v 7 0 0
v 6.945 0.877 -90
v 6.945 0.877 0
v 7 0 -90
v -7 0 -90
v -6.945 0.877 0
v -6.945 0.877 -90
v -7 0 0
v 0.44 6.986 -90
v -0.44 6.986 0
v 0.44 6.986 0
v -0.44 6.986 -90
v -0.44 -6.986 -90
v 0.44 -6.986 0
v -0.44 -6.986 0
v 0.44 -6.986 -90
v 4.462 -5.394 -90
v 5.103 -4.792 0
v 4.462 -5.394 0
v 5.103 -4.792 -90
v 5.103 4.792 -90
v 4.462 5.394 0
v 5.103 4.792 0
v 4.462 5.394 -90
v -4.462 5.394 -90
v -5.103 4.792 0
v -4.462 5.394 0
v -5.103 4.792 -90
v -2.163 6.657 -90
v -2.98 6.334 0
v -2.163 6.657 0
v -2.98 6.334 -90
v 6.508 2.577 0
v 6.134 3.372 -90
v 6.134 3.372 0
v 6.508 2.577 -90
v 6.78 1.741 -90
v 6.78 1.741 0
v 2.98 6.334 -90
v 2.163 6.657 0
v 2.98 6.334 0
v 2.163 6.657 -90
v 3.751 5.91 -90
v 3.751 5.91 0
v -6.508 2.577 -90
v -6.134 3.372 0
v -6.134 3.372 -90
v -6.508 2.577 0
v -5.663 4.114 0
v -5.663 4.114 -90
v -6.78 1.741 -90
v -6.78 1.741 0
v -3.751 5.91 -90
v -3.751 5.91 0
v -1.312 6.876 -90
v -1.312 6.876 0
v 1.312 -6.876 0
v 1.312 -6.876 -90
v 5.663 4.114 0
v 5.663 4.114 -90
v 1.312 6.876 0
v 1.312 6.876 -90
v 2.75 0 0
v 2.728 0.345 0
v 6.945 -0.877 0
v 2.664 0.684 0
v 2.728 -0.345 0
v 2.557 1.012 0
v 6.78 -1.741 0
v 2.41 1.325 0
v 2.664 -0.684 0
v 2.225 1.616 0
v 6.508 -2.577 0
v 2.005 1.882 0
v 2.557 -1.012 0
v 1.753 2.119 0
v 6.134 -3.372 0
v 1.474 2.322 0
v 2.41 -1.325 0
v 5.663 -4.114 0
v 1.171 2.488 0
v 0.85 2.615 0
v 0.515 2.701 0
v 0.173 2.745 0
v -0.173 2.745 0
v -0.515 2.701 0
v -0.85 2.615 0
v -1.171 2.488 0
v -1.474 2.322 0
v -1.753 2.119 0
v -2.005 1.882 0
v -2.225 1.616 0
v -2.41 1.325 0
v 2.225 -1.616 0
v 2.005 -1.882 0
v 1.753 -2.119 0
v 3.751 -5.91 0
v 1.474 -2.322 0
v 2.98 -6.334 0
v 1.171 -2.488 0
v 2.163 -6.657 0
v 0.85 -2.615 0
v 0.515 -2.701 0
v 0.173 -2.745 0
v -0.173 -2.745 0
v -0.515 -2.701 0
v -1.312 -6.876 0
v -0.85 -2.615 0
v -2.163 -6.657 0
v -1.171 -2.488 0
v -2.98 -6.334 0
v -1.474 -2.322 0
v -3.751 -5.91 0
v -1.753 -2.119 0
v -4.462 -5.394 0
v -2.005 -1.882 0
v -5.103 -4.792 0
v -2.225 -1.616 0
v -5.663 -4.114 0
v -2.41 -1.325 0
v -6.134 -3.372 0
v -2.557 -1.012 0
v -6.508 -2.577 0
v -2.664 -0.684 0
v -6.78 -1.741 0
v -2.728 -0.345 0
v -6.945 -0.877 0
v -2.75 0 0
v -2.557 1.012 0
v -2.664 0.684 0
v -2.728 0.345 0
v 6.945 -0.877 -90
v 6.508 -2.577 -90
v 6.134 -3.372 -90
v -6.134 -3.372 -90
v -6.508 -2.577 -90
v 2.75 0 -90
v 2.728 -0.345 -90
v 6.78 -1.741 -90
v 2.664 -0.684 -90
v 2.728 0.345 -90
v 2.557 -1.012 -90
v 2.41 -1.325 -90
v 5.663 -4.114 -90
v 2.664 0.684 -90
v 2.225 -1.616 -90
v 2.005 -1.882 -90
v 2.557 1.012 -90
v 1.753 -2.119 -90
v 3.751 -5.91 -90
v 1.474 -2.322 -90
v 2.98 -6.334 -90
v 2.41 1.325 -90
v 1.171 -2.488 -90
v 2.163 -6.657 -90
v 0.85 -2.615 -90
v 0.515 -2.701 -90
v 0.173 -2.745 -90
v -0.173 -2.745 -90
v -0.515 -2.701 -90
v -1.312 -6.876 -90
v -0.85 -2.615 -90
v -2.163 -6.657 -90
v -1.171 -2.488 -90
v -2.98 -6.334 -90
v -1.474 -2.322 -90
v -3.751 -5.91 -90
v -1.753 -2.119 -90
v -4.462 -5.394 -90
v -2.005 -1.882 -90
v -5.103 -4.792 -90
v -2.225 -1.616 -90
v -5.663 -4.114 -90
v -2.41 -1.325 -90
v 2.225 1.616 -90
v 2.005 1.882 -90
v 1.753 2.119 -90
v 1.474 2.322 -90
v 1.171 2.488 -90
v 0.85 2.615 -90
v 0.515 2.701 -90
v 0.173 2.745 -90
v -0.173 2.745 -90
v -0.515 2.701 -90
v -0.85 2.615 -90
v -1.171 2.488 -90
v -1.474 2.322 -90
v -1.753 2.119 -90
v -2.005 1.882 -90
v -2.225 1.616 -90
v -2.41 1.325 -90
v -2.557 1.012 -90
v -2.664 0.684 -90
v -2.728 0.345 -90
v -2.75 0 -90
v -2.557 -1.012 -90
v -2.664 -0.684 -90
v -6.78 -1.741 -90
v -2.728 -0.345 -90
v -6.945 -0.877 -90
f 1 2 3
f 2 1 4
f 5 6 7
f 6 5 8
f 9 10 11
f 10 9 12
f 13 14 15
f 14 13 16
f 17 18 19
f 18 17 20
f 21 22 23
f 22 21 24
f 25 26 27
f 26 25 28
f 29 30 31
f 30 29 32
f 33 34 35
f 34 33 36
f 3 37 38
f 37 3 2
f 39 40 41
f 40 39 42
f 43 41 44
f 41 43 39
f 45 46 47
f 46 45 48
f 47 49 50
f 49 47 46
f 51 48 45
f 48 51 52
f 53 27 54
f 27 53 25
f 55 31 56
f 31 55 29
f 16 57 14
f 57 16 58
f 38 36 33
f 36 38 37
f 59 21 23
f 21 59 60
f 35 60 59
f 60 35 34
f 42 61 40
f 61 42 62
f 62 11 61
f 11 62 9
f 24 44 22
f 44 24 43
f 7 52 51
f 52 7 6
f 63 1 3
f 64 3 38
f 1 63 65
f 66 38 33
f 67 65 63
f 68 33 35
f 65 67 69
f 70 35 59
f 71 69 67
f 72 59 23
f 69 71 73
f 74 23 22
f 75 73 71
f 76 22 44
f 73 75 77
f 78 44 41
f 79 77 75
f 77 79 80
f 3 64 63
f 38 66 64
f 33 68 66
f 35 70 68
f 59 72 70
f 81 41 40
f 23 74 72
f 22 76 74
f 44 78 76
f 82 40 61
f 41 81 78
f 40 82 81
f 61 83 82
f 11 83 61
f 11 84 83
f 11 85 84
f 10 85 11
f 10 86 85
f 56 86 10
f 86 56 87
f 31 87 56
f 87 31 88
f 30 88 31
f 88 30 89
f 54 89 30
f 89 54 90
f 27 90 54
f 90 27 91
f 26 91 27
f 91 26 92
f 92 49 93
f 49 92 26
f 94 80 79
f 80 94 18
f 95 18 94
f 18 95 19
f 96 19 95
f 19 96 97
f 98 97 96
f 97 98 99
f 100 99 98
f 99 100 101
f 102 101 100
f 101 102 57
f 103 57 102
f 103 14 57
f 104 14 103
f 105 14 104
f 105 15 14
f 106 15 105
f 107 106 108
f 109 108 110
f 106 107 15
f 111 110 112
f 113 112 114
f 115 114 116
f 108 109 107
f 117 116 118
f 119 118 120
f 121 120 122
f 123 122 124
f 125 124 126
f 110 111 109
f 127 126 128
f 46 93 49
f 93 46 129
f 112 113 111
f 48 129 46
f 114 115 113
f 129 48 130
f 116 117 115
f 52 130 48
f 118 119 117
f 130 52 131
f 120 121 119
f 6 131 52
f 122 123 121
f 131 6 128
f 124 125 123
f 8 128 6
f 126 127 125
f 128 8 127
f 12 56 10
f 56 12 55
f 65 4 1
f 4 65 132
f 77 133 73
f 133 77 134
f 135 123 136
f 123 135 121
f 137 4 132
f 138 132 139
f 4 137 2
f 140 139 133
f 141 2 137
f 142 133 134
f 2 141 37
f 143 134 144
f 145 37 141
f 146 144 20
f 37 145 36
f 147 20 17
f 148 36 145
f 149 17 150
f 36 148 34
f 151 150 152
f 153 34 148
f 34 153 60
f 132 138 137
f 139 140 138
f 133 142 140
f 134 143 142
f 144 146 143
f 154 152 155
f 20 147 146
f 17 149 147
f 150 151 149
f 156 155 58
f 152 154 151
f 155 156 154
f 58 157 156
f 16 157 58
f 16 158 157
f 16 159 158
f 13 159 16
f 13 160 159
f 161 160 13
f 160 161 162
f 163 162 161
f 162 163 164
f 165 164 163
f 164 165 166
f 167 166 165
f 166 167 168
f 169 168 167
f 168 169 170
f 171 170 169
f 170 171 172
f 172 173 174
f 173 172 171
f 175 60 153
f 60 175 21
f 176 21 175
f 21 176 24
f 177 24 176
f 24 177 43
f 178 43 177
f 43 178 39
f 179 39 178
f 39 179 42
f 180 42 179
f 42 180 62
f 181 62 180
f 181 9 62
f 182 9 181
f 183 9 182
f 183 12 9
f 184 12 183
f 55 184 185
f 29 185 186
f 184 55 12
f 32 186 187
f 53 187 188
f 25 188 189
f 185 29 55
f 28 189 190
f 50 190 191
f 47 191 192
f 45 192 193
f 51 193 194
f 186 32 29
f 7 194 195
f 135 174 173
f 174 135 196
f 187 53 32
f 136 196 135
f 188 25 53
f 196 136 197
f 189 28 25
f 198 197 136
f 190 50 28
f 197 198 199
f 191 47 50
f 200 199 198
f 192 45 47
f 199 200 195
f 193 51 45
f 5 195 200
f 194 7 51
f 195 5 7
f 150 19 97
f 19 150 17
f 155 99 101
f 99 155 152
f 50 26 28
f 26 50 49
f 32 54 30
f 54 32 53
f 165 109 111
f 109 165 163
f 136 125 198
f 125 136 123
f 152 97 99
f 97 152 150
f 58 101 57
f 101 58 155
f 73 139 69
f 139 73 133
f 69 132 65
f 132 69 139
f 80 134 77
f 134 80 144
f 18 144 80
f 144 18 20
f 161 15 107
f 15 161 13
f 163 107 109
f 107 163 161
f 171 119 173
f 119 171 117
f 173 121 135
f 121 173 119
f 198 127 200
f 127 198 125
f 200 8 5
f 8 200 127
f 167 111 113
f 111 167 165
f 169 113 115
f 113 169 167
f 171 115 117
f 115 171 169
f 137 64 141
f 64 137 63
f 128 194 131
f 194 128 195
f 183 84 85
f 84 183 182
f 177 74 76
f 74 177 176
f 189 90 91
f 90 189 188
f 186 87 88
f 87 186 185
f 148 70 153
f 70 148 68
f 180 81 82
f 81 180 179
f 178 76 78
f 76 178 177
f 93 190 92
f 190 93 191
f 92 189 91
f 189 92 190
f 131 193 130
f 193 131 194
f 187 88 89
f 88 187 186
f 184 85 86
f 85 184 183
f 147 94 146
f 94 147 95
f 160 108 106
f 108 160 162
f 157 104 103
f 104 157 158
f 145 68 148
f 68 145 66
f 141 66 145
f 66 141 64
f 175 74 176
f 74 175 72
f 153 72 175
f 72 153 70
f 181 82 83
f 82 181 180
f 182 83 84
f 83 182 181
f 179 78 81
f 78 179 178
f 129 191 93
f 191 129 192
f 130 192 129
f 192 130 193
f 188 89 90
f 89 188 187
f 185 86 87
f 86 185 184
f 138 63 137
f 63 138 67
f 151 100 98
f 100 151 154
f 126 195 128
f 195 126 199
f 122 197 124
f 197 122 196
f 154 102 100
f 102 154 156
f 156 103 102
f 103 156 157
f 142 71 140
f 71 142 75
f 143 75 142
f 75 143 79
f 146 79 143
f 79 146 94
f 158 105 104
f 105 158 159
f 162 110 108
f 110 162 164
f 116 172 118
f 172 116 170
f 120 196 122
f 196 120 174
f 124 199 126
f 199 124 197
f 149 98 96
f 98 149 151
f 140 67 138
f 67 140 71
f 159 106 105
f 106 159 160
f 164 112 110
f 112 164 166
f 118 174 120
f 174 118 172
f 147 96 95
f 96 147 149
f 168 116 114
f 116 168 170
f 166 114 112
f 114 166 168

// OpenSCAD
$fn = 50;


difference() {
	union() {
		translate(v = [0, 0, -90.0000000000]) {
			cylinder(h = 90, r = 7.0000000000);
		}
		cylinder(h = 0, r = 16.0000000000);
	}
	union() {
		#translate(v = [0, 0, -90]) {
			cylinder(h = 90, r = 2.7500000000);
		}
	}
}
